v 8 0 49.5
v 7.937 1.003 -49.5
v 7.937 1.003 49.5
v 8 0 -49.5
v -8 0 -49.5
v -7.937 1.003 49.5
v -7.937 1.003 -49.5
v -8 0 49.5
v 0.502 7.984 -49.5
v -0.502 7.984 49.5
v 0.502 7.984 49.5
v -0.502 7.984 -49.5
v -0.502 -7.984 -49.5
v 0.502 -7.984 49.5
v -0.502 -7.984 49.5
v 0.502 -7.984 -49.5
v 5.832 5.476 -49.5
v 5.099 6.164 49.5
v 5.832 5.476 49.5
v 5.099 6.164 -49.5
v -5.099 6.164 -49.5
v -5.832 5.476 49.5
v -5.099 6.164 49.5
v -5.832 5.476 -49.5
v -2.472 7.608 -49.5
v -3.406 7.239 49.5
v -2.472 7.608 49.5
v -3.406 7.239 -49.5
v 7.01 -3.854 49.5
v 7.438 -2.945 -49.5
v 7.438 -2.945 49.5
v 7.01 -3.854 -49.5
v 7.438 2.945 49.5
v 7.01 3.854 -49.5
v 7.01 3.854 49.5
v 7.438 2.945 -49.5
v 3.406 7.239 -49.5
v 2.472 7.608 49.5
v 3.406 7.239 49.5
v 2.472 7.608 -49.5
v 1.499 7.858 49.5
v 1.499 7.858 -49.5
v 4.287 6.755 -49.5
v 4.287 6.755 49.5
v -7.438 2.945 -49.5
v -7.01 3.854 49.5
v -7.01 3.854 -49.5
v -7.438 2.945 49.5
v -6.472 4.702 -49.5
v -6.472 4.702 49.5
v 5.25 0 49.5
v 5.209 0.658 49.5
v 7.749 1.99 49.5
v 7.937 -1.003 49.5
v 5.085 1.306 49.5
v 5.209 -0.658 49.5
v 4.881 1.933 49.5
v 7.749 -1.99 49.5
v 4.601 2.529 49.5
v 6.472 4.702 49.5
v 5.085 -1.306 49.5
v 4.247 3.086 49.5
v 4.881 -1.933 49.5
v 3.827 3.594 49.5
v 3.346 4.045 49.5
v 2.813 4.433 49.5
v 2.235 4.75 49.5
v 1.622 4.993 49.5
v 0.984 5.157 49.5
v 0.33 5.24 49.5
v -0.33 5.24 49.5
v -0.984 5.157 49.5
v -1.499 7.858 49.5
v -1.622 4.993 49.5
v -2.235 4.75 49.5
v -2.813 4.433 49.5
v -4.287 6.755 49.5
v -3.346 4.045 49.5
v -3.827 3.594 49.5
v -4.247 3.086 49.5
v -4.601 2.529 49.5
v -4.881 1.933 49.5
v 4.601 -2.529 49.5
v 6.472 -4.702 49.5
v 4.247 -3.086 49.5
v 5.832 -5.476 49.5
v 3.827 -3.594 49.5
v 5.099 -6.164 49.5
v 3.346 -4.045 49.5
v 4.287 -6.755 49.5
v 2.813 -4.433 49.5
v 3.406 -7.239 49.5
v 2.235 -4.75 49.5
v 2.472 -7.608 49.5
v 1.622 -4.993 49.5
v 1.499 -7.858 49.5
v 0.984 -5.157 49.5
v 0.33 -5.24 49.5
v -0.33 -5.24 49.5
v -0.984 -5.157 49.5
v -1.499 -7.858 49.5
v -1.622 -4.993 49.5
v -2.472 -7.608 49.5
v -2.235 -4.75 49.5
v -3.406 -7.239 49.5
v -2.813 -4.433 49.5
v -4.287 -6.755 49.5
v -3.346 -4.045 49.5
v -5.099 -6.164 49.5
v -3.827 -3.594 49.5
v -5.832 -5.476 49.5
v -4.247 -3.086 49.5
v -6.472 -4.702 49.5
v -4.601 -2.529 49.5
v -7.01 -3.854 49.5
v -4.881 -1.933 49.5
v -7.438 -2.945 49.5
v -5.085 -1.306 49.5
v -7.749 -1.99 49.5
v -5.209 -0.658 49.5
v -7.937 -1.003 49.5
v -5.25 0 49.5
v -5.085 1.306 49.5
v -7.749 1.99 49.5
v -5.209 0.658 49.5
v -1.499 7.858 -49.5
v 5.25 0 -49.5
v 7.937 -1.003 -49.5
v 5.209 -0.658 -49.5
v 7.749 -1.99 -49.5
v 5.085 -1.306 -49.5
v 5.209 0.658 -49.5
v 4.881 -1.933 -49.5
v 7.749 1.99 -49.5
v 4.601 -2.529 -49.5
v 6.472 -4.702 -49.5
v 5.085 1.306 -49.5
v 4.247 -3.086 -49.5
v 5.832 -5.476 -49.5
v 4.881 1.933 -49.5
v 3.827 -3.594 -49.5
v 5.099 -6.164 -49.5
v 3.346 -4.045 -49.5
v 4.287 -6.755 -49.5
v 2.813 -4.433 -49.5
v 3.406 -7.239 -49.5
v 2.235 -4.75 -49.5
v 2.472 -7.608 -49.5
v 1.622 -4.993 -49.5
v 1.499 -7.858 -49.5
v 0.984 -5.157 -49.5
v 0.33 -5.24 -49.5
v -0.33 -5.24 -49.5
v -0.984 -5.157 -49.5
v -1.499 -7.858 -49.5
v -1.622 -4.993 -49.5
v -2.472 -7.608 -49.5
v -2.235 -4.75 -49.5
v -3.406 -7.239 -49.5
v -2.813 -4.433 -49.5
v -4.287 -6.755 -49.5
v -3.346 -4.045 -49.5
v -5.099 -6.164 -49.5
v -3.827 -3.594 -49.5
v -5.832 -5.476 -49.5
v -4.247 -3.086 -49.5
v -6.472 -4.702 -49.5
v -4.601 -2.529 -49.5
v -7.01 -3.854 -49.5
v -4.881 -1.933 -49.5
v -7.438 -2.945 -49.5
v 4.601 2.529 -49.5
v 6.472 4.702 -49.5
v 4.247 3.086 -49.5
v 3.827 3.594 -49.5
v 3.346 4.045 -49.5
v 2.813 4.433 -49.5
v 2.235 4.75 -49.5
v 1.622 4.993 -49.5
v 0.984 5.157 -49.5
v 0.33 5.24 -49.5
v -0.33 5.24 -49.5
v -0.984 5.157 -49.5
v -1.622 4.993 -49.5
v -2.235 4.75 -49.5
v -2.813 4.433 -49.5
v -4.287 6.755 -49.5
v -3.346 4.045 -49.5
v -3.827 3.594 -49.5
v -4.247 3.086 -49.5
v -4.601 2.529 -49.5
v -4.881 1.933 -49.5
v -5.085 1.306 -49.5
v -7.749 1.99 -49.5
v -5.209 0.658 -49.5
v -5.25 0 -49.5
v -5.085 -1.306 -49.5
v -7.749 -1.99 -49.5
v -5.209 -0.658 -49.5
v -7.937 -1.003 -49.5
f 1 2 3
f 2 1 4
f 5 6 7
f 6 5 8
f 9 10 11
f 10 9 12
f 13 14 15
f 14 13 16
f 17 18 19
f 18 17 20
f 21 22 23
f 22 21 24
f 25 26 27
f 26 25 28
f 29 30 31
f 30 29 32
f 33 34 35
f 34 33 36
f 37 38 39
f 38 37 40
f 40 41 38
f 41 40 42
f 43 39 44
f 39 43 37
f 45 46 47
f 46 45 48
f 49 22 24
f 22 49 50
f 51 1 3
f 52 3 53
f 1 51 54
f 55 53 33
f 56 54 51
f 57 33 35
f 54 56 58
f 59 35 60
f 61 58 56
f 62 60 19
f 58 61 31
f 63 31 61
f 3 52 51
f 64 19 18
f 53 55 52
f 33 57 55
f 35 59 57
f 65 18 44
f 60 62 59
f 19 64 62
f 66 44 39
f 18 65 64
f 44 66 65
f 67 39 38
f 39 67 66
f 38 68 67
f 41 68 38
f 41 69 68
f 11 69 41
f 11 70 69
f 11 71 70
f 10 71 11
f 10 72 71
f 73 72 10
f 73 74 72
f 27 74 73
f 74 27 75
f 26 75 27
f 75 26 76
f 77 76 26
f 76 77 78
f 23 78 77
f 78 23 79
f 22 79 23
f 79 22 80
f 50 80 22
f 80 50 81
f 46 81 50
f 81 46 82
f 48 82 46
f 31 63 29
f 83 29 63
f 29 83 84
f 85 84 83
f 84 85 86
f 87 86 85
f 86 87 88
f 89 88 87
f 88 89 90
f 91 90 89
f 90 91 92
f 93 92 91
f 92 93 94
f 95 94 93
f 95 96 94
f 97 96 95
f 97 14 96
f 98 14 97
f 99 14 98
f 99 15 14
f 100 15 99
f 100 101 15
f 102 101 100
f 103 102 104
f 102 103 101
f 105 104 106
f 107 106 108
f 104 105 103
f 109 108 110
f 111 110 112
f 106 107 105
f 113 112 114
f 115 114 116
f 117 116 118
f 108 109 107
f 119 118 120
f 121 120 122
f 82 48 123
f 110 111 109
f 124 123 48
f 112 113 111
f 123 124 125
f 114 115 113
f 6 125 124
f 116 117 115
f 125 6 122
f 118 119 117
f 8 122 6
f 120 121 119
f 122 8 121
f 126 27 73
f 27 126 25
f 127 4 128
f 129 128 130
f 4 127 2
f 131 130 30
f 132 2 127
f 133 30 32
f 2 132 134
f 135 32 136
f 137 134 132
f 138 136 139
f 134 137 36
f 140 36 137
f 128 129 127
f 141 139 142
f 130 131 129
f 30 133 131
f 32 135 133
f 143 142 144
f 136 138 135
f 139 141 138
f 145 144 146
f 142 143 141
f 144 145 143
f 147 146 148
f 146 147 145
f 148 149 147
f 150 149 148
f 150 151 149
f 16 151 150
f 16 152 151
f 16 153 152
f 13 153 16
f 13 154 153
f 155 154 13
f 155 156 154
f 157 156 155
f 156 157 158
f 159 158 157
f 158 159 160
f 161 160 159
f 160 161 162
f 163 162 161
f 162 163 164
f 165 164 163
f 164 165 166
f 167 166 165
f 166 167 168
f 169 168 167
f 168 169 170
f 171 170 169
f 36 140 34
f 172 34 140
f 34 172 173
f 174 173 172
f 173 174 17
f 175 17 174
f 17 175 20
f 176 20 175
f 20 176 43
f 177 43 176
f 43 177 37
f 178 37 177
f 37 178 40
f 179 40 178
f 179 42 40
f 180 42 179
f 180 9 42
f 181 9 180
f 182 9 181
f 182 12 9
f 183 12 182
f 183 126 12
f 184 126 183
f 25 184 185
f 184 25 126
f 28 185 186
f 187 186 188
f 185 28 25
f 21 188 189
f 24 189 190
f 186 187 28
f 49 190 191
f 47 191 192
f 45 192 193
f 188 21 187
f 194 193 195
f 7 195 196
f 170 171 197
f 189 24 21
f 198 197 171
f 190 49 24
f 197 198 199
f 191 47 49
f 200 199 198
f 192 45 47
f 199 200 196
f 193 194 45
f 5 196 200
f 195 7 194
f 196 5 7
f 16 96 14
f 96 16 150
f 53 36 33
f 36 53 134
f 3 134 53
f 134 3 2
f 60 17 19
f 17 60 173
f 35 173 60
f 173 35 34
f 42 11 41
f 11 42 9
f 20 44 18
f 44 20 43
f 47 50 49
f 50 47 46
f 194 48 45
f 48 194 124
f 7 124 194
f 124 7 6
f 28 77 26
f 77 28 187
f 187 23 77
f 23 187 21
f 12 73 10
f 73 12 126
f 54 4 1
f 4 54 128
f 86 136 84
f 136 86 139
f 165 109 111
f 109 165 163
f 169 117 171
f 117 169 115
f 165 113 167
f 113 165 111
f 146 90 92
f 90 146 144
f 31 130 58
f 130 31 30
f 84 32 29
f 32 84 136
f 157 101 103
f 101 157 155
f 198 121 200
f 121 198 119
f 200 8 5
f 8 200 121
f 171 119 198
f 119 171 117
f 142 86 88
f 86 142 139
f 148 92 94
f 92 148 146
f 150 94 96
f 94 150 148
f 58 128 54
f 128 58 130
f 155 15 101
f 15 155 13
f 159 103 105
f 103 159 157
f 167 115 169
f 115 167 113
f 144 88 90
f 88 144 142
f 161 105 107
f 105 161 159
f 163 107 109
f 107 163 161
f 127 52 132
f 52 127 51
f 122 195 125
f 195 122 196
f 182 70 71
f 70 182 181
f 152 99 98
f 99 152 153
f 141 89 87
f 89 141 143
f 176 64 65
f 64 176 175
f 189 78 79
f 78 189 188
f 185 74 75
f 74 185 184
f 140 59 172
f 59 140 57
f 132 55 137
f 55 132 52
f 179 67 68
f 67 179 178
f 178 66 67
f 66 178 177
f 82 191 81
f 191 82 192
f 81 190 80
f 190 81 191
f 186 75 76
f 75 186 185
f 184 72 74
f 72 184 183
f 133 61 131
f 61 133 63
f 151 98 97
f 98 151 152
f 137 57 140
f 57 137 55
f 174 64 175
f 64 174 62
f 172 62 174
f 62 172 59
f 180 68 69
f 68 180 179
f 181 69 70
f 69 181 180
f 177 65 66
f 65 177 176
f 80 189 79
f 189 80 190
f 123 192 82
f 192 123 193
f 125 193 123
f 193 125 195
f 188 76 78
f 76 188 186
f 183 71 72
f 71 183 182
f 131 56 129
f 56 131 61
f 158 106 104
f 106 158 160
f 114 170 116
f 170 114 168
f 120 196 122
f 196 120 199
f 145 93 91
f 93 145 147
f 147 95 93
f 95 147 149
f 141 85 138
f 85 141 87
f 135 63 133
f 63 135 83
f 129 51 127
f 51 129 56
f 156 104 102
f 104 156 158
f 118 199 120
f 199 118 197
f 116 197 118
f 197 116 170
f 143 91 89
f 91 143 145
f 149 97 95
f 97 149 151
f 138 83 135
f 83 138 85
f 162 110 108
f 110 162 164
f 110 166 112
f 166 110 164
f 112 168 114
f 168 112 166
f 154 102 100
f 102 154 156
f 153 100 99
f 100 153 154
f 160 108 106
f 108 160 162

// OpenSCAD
$fn = 50;


difference() {
	union() {
		translate(v = [0, 0, -49.5000000000]) {
			cylinder(h = 99, r = 8.0000000000);
		}
	}
	union() {
		translate(v = [0, 0, -100.0000000000]) {
			cylinder(h = 200, r = 5.2500000000);
		}
	}
}
